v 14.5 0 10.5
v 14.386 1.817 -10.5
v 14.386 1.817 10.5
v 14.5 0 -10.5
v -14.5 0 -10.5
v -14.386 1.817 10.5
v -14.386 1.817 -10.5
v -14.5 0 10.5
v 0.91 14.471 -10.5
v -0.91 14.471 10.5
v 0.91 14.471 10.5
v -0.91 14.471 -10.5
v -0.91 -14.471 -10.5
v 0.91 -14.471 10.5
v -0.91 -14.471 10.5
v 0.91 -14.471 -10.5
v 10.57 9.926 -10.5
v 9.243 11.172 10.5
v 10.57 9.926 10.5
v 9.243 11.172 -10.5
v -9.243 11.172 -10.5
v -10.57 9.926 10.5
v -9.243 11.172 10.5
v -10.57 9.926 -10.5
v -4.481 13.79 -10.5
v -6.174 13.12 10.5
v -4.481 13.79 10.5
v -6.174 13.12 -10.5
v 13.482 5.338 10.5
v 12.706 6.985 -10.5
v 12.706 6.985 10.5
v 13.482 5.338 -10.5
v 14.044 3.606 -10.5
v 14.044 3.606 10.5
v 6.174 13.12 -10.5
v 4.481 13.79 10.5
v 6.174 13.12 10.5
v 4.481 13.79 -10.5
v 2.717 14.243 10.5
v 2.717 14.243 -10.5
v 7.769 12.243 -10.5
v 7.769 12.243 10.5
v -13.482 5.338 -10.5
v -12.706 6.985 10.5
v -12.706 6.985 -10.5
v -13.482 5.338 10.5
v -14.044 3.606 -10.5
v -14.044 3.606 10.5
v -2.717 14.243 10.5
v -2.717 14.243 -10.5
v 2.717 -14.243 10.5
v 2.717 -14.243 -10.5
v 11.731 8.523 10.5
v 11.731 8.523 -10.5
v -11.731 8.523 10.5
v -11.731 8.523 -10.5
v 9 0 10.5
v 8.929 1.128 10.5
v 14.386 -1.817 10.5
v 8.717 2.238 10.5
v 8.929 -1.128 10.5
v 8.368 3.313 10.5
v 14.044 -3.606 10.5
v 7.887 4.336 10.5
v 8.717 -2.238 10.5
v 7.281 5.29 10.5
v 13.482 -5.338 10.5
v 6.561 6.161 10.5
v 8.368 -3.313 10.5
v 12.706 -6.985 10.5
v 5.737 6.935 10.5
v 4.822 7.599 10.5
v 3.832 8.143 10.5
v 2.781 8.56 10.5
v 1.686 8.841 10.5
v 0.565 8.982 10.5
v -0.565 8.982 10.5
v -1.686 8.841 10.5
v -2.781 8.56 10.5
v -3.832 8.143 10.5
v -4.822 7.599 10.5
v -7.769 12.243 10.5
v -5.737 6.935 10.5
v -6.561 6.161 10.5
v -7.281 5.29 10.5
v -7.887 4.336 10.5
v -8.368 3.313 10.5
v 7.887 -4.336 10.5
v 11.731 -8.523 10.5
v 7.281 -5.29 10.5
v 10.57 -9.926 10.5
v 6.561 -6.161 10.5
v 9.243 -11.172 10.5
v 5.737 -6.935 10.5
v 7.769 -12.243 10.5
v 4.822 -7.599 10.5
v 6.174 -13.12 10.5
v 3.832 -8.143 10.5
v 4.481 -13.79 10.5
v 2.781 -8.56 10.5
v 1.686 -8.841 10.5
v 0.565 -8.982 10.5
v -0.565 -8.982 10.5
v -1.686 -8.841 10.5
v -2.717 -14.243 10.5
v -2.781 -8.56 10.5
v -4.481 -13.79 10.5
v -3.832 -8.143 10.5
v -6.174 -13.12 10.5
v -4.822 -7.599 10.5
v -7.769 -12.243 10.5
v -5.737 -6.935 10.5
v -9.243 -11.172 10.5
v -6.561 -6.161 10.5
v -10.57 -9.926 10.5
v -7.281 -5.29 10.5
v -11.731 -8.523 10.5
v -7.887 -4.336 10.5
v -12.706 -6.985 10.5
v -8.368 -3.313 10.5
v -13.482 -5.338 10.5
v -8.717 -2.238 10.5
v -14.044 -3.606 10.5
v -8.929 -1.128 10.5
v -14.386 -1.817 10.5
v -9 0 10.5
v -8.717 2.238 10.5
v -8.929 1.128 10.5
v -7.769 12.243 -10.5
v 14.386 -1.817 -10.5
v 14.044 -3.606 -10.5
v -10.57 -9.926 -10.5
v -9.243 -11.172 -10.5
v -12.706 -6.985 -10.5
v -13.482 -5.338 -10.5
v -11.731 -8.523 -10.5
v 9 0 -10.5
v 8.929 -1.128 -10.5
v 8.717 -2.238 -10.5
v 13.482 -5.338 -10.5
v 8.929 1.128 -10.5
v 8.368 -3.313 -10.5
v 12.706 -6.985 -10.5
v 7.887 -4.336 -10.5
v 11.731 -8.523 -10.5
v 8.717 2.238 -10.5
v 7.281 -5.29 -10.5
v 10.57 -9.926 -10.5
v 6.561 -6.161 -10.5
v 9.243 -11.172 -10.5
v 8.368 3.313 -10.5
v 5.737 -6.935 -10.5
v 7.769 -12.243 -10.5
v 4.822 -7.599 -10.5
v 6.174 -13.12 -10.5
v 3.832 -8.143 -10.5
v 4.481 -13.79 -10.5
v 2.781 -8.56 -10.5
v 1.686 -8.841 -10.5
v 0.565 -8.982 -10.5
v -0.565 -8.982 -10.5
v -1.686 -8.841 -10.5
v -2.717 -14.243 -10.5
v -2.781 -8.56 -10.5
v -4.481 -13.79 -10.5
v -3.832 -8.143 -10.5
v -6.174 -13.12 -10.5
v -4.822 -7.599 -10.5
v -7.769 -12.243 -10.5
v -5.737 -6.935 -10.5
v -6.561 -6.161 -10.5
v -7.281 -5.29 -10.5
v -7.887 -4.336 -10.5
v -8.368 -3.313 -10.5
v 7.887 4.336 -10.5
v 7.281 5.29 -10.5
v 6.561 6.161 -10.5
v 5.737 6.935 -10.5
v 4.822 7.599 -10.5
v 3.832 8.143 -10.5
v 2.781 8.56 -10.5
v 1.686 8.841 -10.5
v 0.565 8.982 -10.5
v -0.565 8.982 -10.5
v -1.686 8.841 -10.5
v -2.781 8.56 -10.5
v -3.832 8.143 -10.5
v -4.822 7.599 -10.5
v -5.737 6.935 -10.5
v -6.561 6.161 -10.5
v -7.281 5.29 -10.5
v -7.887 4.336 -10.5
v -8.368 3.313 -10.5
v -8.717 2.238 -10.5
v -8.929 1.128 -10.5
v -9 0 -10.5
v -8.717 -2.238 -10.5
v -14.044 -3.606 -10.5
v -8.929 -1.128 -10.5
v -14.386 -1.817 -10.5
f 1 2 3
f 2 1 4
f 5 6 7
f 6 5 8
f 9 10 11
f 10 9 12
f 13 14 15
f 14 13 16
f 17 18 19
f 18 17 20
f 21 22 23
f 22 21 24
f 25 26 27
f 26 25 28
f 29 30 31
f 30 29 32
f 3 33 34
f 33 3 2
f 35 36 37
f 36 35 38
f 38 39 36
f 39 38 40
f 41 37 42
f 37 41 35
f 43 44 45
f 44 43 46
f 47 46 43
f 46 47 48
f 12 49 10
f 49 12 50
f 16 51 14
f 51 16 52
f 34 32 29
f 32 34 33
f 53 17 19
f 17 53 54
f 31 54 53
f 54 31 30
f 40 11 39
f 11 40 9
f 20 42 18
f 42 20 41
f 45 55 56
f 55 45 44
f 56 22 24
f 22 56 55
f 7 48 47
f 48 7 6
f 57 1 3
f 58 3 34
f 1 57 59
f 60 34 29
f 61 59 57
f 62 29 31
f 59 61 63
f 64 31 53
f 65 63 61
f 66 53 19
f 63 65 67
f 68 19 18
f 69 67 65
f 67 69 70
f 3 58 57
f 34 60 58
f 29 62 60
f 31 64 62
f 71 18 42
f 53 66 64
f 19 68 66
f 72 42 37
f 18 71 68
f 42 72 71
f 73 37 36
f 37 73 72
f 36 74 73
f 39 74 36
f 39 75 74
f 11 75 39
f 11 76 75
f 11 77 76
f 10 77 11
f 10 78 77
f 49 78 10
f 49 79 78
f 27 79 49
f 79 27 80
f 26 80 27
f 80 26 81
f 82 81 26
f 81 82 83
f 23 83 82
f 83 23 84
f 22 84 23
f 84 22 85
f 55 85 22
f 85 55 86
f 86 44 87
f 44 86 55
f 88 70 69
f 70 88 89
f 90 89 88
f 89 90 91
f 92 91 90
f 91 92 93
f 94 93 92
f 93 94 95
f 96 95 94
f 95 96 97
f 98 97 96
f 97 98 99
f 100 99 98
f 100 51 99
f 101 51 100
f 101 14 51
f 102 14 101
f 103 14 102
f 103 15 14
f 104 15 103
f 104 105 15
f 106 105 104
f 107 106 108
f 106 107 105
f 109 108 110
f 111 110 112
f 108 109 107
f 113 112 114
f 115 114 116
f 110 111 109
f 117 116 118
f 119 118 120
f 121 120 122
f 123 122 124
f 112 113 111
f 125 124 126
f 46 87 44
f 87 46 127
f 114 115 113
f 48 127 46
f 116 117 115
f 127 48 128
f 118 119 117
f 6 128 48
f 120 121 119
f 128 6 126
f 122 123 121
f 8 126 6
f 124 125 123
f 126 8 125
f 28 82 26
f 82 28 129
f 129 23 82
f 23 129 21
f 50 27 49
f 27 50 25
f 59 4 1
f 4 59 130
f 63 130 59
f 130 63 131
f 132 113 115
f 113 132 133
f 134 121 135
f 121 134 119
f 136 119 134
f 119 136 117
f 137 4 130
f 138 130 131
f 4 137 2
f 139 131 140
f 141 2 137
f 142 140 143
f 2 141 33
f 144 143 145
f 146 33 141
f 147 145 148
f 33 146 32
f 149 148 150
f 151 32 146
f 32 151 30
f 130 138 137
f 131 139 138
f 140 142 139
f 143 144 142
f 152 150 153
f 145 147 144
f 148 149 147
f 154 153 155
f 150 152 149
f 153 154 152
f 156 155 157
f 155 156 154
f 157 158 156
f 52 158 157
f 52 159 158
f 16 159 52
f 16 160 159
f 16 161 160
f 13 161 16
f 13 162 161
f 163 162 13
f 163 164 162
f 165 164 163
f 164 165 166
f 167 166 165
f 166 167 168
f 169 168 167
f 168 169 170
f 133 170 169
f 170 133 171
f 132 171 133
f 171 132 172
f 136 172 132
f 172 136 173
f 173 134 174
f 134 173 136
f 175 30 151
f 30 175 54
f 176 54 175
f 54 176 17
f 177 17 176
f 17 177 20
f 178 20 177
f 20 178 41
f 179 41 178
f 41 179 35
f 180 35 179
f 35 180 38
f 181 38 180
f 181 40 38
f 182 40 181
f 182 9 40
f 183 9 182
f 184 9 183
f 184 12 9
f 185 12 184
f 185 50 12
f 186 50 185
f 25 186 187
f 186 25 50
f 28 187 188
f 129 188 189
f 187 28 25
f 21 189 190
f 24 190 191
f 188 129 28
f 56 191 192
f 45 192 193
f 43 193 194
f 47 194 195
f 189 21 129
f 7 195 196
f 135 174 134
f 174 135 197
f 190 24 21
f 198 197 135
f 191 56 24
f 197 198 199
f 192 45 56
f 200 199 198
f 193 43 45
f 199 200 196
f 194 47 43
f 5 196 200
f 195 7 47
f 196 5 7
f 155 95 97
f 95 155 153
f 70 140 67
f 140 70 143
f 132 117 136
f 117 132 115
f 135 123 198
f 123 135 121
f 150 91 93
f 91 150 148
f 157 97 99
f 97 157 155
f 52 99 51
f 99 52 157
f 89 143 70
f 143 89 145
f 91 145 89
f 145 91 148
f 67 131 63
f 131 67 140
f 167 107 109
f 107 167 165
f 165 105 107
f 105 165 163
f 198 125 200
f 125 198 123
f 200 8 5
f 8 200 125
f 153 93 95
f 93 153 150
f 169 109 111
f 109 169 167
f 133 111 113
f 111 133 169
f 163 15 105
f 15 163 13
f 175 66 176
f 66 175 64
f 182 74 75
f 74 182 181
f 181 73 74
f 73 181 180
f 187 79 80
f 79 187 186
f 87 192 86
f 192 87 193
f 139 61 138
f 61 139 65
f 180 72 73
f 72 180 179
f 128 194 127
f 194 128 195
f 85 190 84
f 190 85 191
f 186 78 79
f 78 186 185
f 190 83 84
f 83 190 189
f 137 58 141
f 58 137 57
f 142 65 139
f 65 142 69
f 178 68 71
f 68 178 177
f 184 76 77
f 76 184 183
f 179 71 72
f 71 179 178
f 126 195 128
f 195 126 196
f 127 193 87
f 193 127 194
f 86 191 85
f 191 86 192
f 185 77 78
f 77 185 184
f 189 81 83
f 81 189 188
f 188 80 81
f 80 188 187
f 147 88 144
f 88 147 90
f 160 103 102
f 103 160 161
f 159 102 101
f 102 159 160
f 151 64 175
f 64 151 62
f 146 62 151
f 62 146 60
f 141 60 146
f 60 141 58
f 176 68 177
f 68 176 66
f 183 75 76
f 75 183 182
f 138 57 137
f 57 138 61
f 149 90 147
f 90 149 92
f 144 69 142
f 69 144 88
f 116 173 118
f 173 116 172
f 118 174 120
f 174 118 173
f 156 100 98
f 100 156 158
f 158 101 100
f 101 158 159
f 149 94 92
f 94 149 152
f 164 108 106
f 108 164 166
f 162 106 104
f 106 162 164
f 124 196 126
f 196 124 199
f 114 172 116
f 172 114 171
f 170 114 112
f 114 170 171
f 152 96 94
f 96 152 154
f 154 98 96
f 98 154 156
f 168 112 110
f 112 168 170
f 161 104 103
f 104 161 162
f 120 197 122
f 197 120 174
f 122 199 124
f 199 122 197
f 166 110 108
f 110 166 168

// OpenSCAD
$fn = 50;


difference() {
	union() {
		translate(v = [0, 0, -10.5000000000]) {
			cylinder(h = 21, r = 14.5000000000);
		}
	}
	union() {
		translate(v = [0, 0, -100.0000000000]) {
			cylinder(h = 200, r = 9);
		}
	}
}
